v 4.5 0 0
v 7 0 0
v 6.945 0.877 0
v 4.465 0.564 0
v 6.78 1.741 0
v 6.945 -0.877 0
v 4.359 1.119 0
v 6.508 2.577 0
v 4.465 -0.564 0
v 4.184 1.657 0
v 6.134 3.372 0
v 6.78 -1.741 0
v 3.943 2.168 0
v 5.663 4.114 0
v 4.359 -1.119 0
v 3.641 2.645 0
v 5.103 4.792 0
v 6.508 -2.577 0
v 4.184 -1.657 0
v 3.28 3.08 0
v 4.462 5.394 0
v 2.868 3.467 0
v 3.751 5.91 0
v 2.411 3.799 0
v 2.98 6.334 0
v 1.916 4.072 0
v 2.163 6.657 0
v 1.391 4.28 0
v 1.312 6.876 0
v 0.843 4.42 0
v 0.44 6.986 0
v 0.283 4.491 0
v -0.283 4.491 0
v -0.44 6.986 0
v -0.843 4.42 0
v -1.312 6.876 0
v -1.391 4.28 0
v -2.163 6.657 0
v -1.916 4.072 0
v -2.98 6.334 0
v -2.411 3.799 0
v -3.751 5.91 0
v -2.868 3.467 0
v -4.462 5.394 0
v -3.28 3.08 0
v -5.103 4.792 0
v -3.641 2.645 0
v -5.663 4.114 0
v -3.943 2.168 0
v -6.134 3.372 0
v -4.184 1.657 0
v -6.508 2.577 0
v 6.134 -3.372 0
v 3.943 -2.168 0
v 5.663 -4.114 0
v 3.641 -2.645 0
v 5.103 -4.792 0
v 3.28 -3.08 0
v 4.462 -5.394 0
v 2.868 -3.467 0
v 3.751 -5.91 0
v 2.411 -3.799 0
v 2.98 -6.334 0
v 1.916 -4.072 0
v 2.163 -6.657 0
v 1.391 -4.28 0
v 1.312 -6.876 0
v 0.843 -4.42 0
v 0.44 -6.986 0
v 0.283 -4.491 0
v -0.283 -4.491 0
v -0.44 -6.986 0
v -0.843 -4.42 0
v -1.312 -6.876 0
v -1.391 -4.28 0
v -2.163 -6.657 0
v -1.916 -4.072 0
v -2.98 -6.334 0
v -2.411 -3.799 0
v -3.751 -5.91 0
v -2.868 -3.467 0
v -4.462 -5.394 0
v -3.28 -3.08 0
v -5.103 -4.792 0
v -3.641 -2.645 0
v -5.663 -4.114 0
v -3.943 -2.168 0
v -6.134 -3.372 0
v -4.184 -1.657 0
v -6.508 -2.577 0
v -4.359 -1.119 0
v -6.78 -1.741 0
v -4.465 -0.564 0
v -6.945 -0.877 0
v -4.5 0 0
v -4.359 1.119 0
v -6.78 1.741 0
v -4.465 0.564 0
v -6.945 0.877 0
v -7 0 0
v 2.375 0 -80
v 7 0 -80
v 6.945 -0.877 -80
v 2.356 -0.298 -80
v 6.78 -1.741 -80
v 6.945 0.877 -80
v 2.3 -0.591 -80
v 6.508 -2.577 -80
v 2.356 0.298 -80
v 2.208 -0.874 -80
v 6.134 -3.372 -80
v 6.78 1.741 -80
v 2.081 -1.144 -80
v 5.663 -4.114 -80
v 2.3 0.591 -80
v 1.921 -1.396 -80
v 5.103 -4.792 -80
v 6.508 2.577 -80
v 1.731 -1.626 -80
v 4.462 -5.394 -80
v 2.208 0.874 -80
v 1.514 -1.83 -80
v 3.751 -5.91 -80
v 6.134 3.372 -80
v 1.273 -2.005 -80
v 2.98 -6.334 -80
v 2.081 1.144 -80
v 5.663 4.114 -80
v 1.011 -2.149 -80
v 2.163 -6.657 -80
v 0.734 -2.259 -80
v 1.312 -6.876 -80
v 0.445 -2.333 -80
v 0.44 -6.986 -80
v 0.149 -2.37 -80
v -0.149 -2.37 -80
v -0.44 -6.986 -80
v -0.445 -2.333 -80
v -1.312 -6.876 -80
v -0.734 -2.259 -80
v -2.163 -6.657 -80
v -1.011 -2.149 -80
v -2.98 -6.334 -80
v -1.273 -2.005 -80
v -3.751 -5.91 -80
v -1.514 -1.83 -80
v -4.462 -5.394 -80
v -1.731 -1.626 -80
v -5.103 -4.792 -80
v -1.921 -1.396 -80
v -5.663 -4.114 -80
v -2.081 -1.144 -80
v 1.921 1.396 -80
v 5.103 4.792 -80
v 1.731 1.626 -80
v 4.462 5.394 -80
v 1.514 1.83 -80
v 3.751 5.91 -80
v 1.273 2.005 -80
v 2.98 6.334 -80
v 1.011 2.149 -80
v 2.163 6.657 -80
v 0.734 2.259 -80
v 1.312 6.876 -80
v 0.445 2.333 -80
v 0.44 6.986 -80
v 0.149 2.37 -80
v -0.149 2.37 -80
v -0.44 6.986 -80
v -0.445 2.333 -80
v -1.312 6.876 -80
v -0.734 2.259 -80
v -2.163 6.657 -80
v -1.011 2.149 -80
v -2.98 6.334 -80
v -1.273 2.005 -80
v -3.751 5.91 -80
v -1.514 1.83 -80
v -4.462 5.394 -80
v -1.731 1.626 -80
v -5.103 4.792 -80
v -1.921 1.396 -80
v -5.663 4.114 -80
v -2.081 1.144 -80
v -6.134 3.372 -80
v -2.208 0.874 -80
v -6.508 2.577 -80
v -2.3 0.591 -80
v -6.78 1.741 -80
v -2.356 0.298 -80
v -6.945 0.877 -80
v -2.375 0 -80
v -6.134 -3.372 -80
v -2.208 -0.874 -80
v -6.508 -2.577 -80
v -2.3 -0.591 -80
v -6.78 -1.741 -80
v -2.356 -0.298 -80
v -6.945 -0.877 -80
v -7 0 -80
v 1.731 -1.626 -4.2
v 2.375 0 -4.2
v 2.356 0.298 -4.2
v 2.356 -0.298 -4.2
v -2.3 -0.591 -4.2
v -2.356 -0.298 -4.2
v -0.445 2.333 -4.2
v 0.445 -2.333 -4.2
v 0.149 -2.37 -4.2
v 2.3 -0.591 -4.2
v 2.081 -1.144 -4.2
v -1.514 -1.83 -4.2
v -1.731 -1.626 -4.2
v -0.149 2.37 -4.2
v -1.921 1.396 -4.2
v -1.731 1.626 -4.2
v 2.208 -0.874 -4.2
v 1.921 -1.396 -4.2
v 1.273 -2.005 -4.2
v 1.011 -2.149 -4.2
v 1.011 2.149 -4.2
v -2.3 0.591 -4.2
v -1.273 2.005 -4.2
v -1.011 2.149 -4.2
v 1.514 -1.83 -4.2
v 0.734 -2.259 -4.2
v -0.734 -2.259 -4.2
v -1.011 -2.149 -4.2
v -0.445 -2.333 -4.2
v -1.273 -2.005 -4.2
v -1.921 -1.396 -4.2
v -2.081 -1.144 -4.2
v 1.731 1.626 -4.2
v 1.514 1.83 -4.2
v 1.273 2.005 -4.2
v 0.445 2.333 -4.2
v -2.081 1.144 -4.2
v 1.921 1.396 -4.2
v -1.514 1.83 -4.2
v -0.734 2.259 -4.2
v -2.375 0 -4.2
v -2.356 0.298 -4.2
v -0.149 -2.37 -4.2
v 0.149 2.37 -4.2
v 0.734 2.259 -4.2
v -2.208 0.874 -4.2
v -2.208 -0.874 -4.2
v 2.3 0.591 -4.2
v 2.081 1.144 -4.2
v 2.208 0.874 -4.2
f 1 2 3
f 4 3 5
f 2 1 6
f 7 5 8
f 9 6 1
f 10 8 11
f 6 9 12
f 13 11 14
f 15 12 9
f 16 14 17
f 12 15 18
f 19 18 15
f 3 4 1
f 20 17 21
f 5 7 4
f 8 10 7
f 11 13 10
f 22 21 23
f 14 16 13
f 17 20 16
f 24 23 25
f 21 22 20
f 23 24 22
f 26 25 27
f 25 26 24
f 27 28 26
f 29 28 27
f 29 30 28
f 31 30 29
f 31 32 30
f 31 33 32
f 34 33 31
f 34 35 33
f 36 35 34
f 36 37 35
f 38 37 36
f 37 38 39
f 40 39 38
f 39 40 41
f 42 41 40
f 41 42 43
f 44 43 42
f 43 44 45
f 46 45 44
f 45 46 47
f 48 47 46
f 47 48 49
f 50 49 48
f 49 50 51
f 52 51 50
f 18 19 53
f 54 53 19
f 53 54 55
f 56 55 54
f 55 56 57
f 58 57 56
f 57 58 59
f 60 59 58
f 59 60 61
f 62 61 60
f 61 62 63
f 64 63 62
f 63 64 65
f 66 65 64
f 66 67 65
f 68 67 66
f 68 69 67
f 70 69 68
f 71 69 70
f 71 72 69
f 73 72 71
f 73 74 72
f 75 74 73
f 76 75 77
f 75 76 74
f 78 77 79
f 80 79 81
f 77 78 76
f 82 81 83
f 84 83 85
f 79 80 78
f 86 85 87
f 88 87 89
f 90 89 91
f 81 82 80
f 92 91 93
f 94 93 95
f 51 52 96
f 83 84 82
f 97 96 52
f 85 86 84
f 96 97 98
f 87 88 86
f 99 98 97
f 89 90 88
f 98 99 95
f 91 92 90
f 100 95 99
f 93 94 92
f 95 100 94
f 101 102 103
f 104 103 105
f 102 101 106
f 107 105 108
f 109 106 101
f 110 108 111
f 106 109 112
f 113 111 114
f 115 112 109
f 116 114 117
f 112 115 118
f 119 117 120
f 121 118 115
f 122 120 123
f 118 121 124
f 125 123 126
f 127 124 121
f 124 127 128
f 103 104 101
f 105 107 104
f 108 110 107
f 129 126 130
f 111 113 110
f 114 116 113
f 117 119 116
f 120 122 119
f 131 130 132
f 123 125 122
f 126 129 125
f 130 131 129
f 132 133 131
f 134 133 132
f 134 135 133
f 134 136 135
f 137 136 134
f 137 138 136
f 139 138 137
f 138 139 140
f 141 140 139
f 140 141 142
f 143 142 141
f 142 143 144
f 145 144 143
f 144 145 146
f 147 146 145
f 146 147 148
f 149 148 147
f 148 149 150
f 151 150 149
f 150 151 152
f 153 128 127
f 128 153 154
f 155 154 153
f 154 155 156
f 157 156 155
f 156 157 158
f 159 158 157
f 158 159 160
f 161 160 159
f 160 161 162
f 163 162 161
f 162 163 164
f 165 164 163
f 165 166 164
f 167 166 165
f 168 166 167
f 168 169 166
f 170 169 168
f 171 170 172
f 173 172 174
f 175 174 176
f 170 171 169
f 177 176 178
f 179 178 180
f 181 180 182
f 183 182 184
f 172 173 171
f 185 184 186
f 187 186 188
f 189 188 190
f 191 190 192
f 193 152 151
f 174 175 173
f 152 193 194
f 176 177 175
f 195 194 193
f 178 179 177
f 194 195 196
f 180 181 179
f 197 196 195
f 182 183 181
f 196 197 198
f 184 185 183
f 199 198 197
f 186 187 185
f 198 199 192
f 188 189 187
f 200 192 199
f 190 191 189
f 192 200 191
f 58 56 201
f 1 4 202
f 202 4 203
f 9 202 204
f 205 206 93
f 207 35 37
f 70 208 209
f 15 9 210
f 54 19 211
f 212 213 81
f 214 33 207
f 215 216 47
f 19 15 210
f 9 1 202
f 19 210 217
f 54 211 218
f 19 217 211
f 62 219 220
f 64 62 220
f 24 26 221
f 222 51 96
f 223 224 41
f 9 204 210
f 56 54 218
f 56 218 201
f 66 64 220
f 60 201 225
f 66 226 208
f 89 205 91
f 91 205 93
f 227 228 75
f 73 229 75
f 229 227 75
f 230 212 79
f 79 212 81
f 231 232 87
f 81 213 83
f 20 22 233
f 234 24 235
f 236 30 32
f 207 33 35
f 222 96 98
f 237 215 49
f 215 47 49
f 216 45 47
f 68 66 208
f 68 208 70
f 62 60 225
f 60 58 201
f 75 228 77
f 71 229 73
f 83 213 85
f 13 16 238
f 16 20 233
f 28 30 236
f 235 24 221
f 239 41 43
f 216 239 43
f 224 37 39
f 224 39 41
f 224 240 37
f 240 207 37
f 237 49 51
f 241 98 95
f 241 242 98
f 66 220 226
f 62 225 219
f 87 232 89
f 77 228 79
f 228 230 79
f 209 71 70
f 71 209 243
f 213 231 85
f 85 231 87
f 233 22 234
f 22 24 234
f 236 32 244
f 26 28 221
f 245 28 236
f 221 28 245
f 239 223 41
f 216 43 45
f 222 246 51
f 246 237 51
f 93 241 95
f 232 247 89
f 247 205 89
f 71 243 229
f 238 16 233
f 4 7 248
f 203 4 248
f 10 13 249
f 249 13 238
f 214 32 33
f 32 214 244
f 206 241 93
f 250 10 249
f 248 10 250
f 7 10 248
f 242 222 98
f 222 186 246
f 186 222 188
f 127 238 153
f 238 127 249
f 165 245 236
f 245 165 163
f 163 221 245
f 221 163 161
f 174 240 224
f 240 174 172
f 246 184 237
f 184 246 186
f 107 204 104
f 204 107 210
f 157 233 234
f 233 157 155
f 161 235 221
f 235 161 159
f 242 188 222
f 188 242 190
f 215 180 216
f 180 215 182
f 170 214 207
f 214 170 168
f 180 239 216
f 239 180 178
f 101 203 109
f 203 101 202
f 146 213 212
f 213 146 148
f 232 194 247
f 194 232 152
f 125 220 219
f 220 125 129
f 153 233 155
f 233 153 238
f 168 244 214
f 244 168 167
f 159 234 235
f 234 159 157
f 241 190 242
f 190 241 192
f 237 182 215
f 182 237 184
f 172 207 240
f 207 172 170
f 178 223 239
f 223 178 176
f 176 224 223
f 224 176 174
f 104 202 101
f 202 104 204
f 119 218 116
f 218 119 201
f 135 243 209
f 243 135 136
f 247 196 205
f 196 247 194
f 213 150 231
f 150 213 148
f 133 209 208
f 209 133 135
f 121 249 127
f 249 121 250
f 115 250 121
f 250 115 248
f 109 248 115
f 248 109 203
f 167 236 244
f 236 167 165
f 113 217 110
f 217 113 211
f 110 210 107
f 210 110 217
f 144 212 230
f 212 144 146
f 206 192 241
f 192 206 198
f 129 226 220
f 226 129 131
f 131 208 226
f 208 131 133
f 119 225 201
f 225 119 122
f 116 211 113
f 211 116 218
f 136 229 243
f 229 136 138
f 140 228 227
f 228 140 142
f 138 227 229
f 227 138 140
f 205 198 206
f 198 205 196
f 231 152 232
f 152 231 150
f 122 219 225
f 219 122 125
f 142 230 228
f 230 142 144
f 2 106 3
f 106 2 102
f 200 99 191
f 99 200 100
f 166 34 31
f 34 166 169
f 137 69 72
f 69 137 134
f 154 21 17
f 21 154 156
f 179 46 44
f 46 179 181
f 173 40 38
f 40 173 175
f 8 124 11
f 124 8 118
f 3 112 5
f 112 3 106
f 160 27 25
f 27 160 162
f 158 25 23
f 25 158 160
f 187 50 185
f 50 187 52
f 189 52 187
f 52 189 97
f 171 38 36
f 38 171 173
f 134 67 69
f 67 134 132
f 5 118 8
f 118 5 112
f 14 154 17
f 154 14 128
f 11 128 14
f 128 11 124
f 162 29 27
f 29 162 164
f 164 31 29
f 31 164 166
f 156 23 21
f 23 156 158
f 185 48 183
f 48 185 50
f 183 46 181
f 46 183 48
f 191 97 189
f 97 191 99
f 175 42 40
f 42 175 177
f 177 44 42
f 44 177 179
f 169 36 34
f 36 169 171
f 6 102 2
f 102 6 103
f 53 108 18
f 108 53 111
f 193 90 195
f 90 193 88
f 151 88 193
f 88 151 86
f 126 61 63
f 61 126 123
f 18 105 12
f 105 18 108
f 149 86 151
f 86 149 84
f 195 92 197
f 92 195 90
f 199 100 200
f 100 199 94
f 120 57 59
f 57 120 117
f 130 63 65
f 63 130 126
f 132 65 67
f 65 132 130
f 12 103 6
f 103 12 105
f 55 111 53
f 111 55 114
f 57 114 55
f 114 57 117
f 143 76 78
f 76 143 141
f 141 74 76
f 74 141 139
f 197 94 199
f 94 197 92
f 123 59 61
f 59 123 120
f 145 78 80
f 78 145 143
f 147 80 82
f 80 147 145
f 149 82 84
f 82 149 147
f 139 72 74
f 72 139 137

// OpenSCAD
$fn = 50;


difference() {
	union() {
		translate(v = [0, 0, -80.0000000000]) {
			cylinder(h = 80, r = 7.0000000000);
		}
		cylinder(h = 0, r = 13.0000000000);
	}
	union() {
		translate(v = [0, 0, 0]) {
			rotate(a = [0, 0, 0]) {
				difference() {
					union() {
						#translate(v = [0, 0, -80.0000000000]) {
							cylinder(h = 80, r = 2.2500000000);
						}
						#translate(v = [0, 0, -4.2000000000]) {
							cylinder(h = 4.2000000000, r1 = 2.3750000000, r2 = 4.5000000000);
						}
						#translate(v = [0, 0, -80.0000000000]) {
							cylinder(h = 80, r = 2.3750000000);
						}
						#translate(v = [0, 0, -80.0000000000]) {
							cylinder(h = 80, r = 2.2500000000);
						}
					}
					union();
				}
			}
		}
	}
}
